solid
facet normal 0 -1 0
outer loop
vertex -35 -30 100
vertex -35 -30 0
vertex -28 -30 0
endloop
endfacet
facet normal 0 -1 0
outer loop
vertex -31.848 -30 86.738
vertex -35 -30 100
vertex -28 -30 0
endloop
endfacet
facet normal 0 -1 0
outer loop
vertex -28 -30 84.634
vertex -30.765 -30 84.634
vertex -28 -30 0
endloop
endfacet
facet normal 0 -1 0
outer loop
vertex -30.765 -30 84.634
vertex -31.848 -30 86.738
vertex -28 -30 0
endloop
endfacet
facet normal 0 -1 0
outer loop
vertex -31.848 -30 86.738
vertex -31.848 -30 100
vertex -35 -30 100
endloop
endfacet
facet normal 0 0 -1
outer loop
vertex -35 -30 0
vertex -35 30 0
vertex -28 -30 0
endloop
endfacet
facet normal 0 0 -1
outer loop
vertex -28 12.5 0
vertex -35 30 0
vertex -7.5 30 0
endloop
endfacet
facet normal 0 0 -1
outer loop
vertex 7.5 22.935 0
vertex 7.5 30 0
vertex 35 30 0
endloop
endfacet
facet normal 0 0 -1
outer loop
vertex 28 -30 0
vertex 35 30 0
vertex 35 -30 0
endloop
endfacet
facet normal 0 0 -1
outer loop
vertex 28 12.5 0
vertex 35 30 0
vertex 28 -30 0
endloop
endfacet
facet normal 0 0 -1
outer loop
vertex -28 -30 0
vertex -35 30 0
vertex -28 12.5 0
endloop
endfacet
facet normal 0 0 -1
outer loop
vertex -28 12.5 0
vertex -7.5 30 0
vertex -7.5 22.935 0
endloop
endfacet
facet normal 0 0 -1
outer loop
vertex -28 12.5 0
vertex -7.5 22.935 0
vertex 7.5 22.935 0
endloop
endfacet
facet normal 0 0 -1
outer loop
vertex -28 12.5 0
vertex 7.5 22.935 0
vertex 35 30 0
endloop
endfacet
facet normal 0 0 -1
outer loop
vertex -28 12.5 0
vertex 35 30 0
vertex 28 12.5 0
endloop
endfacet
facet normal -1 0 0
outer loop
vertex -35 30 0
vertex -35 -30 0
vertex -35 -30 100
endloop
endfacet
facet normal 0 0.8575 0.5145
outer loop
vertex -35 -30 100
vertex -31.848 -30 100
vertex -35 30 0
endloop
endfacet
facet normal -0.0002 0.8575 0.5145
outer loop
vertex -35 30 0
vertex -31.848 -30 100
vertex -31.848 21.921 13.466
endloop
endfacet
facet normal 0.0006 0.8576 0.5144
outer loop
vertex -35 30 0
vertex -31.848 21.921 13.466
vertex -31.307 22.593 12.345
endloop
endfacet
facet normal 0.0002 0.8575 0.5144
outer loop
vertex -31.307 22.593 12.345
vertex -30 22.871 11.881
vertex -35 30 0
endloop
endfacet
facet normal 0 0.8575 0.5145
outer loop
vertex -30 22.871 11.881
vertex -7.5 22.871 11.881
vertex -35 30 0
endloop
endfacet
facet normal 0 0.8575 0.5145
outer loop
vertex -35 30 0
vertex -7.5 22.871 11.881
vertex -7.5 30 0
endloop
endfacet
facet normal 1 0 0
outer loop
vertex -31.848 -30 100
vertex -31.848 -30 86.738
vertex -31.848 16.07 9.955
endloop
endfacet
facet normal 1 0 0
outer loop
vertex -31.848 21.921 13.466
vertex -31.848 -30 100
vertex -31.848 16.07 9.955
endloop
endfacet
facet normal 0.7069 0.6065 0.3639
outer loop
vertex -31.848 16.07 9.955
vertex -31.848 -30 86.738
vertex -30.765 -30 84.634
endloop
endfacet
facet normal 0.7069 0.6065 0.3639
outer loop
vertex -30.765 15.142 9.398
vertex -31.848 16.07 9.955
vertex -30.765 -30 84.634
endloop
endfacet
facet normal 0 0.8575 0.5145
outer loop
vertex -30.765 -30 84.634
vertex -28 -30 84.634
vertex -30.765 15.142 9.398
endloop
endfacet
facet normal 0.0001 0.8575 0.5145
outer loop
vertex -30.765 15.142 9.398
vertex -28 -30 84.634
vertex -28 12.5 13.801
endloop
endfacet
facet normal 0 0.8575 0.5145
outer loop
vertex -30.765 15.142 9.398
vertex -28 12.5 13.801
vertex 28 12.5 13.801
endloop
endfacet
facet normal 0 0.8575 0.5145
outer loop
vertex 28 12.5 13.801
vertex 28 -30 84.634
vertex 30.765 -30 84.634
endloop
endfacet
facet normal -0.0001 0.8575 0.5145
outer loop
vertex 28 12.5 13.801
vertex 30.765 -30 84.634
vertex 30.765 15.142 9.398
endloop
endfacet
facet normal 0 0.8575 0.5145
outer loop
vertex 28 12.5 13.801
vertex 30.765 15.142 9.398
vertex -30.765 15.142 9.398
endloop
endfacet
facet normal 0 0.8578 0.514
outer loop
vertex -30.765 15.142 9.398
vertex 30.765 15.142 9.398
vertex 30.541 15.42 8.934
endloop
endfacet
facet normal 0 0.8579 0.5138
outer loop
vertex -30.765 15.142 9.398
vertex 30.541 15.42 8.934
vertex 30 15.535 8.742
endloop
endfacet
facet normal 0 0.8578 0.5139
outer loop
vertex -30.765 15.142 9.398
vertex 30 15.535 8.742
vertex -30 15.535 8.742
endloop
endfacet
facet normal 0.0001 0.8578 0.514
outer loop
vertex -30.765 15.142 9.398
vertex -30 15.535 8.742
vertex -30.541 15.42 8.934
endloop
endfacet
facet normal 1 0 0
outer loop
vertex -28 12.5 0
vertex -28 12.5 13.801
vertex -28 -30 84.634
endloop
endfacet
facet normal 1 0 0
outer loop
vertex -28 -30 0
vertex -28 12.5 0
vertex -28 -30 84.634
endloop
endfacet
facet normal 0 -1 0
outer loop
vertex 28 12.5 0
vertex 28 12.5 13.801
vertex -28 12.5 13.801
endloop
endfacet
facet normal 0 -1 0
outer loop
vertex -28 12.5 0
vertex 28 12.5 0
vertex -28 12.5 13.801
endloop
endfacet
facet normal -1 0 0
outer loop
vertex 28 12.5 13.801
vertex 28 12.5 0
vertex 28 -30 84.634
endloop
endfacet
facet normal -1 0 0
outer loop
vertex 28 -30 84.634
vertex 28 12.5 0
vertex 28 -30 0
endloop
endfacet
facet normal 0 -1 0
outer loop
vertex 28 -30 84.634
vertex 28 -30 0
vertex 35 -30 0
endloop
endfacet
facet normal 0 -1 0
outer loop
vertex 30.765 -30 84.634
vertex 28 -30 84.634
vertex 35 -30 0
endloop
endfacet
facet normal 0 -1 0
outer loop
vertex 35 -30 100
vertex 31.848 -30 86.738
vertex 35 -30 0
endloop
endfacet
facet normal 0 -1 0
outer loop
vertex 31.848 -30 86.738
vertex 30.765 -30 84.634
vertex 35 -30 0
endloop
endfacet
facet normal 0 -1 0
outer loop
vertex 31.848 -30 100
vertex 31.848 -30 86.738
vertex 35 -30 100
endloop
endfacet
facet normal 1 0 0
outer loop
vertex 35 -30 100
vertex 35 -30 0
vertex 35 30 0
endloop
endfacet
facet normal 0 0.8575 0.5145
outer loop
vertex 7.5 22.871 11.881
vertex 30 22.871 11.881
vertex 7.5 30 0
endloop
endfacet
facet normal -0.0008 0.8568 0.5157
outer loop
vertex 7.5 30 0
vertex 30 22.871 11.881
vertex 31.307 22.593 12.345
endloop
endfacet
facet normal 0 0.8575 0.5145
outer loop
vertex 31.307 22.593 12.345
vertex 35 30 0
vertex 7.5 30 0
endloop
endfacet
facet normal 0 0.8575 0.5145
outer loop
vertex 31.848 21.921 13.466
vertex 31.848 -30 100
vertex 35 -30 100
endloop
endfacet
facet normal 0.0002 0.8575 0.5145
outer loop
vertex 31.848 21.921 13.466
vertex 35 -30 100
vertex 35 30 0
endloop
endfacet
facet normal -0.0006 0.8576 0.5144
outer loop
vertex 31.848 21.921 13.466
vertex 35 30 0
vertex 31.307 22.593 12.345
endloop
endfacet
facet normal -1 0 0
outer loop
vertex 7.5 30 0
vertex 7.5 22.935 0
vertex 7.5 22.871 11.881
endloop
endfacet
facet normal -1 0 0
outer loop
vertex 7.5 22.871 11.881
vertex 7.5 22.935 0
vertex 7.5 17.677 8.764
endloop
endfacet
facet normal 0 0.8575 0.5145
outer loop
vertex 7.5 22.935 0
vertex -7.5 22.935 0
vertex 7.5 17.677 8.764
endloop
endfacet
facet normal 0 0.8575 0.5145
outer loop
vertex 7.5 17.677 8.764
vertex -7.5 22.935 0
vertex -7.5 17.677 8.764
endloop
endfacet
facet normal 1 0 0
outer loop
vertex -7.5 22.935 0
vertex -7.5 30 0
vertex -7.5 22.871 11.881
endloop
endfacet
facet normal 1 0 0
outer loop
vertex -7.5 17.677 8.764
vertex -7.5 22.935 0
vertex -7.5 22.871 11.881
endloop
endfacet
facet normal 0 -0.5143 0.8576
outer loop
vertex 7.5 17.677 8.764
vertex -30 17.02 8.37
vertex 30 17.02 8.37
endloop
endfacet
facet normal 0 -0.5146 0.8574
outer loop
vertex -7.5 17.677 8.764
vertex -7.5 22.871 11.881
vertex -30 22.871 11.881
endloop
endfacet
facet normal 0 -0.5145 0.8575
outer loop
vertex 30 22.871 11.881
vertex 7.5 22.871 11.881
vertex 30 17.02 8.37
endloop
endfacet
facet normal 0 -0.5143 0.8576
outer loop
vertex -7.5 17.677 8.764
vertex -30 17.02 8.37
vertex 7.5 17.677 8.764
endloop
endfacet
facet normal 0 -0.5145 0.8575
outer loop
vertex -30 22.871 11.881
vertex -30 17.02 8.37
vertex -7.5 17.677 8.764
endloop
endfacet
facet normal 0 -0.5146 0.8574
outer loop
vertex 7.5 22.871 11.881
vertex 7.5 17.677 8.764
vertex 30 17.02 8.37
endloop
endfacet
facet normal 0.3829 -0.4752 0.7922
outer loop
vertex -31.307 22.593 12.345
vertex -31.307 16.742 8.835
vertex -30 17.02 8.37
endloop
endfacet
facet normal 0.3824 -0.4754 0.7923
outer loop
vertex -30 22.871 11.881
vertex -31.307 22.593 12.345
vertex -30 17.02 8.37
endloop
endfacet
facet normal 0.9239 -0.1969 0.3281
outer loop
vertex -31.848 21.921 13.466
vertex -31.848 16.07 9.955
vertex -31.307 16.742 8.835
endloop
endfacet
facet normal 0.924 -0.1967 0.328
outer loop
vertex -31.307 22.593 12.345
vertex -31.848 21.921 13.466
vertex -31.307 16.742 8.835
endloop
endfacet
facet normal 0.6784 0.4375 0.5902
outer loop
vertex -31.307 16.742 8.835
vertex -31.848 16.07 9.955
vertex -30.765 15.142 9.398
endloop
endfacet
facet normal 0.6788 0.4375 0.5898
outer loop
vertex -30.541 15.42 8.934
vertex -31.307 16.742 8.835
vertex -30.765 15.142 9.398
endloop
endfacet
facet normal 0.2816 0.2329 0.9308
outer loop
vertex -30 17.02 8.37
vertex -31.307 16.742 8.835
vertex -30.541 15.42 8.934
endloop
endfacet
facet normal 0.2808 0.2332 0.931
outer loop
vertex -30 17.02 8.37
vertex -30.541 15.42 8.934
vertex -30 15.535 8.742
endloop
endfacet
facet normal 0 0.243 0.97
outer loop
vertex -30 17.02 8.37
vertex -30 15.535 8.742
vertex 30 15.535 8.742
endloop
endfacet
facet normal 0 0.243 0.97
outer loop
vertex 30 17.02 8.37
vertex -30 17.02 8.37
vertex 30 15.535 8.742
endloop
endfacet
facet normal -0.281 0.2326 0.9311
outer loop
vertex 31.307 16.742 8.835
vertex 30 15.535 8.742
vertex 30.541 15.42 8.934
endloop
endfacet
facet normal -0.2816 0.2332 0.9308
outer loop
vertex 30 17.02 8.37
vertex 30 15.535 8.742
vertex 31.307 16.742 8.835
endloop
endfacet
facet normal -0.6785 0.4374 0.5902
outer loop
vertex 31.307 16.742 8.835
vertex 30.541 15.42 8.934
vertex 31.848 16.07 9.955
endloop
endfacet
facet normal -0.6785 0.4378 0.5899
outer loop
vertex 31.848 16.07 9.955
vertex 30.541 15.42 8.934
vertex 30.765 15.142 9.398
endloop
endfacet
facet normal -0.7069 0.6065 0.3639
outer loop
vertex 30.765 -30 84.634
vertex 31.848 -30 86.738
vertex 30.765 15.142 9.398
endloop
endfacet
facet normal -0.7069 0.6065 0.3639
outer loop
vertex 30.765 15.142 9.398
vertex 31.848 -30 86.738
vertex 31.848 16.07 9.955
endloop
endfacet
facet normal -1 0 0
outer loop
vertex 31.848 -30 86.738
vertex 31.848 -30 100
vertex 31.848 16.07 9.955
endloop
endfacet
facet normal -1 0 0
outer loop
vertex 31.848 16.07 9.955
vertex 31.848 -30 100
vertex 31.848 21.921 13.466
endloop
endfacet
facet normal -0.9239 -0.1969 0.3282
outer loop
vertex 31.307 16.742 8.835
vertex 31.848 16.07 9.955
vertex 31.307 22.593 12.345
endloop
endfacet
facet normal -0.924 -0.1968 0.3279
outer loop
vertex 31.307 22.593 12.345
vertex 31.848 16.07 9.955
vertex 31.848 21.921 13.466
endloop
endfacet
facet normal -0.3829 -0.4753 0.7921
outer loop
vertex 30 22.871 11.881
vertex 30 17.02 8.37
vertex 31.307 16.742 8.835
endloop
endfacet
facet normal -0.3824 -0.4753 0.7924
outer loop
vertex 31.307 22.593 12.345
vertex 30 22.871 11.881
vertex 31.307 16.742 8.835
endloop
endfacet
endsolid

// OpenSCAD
// file: pieces/phone.scad
//phone
module phone()
{

	union(){
		color("silver") minkowski()
		{
			cube(size=[62,125,8], center=true);
			//cylinder(r=1,h=1);
			sphere(r=1,$fn=8);
		}
		
		//usb connector
		color("red")
		translate([0,62.5,0]){
			cube(size=[8,8,2],center=true);
		}
	}
};

module dock(deep){
	phone();	
};

dock(60);
// main file
$fn=8;
use <./pieces/phone.scad>;

module dock(height){

difference(){

	polyhedron(
		points = [[35,30,0],[-35,30,0],[-35,-30,0],[35,-30,0],[35,-30,height],[-35,-30,height]],
		faces = [[0,1,2],[0,2,3],[0,3,4],[2,1,5],[0,4,5],[1,0,5],[2,5,4],[3,2,4]],
	convexity=300
	);

	//TODO adapte value
	translate([0,-12,height/2+16])
	rotate([-atan2(height,60),0,0])
	union(){ 
		color("silver")
		minkowski()
		{
			cube(size=[60,125,8], center=true);
			//cylinder(r=1,h=1);
			sphere(r=2);
		}
		color("red")
		translate([0,(125+20)/2,0])
		cube(size=[15,20,8],center=true);	
	}

	translate([0,-10,0])
	cube(size=[56,45,200],center=true);
/*
	for(x=[-24:6:24]){
	for(y=[-24:6:12]){
		translate([x,y,50])
		cube(size=[4,4,100],center=true);
	}
	}
*/
}	
	//phone();	
};

dock(100);
